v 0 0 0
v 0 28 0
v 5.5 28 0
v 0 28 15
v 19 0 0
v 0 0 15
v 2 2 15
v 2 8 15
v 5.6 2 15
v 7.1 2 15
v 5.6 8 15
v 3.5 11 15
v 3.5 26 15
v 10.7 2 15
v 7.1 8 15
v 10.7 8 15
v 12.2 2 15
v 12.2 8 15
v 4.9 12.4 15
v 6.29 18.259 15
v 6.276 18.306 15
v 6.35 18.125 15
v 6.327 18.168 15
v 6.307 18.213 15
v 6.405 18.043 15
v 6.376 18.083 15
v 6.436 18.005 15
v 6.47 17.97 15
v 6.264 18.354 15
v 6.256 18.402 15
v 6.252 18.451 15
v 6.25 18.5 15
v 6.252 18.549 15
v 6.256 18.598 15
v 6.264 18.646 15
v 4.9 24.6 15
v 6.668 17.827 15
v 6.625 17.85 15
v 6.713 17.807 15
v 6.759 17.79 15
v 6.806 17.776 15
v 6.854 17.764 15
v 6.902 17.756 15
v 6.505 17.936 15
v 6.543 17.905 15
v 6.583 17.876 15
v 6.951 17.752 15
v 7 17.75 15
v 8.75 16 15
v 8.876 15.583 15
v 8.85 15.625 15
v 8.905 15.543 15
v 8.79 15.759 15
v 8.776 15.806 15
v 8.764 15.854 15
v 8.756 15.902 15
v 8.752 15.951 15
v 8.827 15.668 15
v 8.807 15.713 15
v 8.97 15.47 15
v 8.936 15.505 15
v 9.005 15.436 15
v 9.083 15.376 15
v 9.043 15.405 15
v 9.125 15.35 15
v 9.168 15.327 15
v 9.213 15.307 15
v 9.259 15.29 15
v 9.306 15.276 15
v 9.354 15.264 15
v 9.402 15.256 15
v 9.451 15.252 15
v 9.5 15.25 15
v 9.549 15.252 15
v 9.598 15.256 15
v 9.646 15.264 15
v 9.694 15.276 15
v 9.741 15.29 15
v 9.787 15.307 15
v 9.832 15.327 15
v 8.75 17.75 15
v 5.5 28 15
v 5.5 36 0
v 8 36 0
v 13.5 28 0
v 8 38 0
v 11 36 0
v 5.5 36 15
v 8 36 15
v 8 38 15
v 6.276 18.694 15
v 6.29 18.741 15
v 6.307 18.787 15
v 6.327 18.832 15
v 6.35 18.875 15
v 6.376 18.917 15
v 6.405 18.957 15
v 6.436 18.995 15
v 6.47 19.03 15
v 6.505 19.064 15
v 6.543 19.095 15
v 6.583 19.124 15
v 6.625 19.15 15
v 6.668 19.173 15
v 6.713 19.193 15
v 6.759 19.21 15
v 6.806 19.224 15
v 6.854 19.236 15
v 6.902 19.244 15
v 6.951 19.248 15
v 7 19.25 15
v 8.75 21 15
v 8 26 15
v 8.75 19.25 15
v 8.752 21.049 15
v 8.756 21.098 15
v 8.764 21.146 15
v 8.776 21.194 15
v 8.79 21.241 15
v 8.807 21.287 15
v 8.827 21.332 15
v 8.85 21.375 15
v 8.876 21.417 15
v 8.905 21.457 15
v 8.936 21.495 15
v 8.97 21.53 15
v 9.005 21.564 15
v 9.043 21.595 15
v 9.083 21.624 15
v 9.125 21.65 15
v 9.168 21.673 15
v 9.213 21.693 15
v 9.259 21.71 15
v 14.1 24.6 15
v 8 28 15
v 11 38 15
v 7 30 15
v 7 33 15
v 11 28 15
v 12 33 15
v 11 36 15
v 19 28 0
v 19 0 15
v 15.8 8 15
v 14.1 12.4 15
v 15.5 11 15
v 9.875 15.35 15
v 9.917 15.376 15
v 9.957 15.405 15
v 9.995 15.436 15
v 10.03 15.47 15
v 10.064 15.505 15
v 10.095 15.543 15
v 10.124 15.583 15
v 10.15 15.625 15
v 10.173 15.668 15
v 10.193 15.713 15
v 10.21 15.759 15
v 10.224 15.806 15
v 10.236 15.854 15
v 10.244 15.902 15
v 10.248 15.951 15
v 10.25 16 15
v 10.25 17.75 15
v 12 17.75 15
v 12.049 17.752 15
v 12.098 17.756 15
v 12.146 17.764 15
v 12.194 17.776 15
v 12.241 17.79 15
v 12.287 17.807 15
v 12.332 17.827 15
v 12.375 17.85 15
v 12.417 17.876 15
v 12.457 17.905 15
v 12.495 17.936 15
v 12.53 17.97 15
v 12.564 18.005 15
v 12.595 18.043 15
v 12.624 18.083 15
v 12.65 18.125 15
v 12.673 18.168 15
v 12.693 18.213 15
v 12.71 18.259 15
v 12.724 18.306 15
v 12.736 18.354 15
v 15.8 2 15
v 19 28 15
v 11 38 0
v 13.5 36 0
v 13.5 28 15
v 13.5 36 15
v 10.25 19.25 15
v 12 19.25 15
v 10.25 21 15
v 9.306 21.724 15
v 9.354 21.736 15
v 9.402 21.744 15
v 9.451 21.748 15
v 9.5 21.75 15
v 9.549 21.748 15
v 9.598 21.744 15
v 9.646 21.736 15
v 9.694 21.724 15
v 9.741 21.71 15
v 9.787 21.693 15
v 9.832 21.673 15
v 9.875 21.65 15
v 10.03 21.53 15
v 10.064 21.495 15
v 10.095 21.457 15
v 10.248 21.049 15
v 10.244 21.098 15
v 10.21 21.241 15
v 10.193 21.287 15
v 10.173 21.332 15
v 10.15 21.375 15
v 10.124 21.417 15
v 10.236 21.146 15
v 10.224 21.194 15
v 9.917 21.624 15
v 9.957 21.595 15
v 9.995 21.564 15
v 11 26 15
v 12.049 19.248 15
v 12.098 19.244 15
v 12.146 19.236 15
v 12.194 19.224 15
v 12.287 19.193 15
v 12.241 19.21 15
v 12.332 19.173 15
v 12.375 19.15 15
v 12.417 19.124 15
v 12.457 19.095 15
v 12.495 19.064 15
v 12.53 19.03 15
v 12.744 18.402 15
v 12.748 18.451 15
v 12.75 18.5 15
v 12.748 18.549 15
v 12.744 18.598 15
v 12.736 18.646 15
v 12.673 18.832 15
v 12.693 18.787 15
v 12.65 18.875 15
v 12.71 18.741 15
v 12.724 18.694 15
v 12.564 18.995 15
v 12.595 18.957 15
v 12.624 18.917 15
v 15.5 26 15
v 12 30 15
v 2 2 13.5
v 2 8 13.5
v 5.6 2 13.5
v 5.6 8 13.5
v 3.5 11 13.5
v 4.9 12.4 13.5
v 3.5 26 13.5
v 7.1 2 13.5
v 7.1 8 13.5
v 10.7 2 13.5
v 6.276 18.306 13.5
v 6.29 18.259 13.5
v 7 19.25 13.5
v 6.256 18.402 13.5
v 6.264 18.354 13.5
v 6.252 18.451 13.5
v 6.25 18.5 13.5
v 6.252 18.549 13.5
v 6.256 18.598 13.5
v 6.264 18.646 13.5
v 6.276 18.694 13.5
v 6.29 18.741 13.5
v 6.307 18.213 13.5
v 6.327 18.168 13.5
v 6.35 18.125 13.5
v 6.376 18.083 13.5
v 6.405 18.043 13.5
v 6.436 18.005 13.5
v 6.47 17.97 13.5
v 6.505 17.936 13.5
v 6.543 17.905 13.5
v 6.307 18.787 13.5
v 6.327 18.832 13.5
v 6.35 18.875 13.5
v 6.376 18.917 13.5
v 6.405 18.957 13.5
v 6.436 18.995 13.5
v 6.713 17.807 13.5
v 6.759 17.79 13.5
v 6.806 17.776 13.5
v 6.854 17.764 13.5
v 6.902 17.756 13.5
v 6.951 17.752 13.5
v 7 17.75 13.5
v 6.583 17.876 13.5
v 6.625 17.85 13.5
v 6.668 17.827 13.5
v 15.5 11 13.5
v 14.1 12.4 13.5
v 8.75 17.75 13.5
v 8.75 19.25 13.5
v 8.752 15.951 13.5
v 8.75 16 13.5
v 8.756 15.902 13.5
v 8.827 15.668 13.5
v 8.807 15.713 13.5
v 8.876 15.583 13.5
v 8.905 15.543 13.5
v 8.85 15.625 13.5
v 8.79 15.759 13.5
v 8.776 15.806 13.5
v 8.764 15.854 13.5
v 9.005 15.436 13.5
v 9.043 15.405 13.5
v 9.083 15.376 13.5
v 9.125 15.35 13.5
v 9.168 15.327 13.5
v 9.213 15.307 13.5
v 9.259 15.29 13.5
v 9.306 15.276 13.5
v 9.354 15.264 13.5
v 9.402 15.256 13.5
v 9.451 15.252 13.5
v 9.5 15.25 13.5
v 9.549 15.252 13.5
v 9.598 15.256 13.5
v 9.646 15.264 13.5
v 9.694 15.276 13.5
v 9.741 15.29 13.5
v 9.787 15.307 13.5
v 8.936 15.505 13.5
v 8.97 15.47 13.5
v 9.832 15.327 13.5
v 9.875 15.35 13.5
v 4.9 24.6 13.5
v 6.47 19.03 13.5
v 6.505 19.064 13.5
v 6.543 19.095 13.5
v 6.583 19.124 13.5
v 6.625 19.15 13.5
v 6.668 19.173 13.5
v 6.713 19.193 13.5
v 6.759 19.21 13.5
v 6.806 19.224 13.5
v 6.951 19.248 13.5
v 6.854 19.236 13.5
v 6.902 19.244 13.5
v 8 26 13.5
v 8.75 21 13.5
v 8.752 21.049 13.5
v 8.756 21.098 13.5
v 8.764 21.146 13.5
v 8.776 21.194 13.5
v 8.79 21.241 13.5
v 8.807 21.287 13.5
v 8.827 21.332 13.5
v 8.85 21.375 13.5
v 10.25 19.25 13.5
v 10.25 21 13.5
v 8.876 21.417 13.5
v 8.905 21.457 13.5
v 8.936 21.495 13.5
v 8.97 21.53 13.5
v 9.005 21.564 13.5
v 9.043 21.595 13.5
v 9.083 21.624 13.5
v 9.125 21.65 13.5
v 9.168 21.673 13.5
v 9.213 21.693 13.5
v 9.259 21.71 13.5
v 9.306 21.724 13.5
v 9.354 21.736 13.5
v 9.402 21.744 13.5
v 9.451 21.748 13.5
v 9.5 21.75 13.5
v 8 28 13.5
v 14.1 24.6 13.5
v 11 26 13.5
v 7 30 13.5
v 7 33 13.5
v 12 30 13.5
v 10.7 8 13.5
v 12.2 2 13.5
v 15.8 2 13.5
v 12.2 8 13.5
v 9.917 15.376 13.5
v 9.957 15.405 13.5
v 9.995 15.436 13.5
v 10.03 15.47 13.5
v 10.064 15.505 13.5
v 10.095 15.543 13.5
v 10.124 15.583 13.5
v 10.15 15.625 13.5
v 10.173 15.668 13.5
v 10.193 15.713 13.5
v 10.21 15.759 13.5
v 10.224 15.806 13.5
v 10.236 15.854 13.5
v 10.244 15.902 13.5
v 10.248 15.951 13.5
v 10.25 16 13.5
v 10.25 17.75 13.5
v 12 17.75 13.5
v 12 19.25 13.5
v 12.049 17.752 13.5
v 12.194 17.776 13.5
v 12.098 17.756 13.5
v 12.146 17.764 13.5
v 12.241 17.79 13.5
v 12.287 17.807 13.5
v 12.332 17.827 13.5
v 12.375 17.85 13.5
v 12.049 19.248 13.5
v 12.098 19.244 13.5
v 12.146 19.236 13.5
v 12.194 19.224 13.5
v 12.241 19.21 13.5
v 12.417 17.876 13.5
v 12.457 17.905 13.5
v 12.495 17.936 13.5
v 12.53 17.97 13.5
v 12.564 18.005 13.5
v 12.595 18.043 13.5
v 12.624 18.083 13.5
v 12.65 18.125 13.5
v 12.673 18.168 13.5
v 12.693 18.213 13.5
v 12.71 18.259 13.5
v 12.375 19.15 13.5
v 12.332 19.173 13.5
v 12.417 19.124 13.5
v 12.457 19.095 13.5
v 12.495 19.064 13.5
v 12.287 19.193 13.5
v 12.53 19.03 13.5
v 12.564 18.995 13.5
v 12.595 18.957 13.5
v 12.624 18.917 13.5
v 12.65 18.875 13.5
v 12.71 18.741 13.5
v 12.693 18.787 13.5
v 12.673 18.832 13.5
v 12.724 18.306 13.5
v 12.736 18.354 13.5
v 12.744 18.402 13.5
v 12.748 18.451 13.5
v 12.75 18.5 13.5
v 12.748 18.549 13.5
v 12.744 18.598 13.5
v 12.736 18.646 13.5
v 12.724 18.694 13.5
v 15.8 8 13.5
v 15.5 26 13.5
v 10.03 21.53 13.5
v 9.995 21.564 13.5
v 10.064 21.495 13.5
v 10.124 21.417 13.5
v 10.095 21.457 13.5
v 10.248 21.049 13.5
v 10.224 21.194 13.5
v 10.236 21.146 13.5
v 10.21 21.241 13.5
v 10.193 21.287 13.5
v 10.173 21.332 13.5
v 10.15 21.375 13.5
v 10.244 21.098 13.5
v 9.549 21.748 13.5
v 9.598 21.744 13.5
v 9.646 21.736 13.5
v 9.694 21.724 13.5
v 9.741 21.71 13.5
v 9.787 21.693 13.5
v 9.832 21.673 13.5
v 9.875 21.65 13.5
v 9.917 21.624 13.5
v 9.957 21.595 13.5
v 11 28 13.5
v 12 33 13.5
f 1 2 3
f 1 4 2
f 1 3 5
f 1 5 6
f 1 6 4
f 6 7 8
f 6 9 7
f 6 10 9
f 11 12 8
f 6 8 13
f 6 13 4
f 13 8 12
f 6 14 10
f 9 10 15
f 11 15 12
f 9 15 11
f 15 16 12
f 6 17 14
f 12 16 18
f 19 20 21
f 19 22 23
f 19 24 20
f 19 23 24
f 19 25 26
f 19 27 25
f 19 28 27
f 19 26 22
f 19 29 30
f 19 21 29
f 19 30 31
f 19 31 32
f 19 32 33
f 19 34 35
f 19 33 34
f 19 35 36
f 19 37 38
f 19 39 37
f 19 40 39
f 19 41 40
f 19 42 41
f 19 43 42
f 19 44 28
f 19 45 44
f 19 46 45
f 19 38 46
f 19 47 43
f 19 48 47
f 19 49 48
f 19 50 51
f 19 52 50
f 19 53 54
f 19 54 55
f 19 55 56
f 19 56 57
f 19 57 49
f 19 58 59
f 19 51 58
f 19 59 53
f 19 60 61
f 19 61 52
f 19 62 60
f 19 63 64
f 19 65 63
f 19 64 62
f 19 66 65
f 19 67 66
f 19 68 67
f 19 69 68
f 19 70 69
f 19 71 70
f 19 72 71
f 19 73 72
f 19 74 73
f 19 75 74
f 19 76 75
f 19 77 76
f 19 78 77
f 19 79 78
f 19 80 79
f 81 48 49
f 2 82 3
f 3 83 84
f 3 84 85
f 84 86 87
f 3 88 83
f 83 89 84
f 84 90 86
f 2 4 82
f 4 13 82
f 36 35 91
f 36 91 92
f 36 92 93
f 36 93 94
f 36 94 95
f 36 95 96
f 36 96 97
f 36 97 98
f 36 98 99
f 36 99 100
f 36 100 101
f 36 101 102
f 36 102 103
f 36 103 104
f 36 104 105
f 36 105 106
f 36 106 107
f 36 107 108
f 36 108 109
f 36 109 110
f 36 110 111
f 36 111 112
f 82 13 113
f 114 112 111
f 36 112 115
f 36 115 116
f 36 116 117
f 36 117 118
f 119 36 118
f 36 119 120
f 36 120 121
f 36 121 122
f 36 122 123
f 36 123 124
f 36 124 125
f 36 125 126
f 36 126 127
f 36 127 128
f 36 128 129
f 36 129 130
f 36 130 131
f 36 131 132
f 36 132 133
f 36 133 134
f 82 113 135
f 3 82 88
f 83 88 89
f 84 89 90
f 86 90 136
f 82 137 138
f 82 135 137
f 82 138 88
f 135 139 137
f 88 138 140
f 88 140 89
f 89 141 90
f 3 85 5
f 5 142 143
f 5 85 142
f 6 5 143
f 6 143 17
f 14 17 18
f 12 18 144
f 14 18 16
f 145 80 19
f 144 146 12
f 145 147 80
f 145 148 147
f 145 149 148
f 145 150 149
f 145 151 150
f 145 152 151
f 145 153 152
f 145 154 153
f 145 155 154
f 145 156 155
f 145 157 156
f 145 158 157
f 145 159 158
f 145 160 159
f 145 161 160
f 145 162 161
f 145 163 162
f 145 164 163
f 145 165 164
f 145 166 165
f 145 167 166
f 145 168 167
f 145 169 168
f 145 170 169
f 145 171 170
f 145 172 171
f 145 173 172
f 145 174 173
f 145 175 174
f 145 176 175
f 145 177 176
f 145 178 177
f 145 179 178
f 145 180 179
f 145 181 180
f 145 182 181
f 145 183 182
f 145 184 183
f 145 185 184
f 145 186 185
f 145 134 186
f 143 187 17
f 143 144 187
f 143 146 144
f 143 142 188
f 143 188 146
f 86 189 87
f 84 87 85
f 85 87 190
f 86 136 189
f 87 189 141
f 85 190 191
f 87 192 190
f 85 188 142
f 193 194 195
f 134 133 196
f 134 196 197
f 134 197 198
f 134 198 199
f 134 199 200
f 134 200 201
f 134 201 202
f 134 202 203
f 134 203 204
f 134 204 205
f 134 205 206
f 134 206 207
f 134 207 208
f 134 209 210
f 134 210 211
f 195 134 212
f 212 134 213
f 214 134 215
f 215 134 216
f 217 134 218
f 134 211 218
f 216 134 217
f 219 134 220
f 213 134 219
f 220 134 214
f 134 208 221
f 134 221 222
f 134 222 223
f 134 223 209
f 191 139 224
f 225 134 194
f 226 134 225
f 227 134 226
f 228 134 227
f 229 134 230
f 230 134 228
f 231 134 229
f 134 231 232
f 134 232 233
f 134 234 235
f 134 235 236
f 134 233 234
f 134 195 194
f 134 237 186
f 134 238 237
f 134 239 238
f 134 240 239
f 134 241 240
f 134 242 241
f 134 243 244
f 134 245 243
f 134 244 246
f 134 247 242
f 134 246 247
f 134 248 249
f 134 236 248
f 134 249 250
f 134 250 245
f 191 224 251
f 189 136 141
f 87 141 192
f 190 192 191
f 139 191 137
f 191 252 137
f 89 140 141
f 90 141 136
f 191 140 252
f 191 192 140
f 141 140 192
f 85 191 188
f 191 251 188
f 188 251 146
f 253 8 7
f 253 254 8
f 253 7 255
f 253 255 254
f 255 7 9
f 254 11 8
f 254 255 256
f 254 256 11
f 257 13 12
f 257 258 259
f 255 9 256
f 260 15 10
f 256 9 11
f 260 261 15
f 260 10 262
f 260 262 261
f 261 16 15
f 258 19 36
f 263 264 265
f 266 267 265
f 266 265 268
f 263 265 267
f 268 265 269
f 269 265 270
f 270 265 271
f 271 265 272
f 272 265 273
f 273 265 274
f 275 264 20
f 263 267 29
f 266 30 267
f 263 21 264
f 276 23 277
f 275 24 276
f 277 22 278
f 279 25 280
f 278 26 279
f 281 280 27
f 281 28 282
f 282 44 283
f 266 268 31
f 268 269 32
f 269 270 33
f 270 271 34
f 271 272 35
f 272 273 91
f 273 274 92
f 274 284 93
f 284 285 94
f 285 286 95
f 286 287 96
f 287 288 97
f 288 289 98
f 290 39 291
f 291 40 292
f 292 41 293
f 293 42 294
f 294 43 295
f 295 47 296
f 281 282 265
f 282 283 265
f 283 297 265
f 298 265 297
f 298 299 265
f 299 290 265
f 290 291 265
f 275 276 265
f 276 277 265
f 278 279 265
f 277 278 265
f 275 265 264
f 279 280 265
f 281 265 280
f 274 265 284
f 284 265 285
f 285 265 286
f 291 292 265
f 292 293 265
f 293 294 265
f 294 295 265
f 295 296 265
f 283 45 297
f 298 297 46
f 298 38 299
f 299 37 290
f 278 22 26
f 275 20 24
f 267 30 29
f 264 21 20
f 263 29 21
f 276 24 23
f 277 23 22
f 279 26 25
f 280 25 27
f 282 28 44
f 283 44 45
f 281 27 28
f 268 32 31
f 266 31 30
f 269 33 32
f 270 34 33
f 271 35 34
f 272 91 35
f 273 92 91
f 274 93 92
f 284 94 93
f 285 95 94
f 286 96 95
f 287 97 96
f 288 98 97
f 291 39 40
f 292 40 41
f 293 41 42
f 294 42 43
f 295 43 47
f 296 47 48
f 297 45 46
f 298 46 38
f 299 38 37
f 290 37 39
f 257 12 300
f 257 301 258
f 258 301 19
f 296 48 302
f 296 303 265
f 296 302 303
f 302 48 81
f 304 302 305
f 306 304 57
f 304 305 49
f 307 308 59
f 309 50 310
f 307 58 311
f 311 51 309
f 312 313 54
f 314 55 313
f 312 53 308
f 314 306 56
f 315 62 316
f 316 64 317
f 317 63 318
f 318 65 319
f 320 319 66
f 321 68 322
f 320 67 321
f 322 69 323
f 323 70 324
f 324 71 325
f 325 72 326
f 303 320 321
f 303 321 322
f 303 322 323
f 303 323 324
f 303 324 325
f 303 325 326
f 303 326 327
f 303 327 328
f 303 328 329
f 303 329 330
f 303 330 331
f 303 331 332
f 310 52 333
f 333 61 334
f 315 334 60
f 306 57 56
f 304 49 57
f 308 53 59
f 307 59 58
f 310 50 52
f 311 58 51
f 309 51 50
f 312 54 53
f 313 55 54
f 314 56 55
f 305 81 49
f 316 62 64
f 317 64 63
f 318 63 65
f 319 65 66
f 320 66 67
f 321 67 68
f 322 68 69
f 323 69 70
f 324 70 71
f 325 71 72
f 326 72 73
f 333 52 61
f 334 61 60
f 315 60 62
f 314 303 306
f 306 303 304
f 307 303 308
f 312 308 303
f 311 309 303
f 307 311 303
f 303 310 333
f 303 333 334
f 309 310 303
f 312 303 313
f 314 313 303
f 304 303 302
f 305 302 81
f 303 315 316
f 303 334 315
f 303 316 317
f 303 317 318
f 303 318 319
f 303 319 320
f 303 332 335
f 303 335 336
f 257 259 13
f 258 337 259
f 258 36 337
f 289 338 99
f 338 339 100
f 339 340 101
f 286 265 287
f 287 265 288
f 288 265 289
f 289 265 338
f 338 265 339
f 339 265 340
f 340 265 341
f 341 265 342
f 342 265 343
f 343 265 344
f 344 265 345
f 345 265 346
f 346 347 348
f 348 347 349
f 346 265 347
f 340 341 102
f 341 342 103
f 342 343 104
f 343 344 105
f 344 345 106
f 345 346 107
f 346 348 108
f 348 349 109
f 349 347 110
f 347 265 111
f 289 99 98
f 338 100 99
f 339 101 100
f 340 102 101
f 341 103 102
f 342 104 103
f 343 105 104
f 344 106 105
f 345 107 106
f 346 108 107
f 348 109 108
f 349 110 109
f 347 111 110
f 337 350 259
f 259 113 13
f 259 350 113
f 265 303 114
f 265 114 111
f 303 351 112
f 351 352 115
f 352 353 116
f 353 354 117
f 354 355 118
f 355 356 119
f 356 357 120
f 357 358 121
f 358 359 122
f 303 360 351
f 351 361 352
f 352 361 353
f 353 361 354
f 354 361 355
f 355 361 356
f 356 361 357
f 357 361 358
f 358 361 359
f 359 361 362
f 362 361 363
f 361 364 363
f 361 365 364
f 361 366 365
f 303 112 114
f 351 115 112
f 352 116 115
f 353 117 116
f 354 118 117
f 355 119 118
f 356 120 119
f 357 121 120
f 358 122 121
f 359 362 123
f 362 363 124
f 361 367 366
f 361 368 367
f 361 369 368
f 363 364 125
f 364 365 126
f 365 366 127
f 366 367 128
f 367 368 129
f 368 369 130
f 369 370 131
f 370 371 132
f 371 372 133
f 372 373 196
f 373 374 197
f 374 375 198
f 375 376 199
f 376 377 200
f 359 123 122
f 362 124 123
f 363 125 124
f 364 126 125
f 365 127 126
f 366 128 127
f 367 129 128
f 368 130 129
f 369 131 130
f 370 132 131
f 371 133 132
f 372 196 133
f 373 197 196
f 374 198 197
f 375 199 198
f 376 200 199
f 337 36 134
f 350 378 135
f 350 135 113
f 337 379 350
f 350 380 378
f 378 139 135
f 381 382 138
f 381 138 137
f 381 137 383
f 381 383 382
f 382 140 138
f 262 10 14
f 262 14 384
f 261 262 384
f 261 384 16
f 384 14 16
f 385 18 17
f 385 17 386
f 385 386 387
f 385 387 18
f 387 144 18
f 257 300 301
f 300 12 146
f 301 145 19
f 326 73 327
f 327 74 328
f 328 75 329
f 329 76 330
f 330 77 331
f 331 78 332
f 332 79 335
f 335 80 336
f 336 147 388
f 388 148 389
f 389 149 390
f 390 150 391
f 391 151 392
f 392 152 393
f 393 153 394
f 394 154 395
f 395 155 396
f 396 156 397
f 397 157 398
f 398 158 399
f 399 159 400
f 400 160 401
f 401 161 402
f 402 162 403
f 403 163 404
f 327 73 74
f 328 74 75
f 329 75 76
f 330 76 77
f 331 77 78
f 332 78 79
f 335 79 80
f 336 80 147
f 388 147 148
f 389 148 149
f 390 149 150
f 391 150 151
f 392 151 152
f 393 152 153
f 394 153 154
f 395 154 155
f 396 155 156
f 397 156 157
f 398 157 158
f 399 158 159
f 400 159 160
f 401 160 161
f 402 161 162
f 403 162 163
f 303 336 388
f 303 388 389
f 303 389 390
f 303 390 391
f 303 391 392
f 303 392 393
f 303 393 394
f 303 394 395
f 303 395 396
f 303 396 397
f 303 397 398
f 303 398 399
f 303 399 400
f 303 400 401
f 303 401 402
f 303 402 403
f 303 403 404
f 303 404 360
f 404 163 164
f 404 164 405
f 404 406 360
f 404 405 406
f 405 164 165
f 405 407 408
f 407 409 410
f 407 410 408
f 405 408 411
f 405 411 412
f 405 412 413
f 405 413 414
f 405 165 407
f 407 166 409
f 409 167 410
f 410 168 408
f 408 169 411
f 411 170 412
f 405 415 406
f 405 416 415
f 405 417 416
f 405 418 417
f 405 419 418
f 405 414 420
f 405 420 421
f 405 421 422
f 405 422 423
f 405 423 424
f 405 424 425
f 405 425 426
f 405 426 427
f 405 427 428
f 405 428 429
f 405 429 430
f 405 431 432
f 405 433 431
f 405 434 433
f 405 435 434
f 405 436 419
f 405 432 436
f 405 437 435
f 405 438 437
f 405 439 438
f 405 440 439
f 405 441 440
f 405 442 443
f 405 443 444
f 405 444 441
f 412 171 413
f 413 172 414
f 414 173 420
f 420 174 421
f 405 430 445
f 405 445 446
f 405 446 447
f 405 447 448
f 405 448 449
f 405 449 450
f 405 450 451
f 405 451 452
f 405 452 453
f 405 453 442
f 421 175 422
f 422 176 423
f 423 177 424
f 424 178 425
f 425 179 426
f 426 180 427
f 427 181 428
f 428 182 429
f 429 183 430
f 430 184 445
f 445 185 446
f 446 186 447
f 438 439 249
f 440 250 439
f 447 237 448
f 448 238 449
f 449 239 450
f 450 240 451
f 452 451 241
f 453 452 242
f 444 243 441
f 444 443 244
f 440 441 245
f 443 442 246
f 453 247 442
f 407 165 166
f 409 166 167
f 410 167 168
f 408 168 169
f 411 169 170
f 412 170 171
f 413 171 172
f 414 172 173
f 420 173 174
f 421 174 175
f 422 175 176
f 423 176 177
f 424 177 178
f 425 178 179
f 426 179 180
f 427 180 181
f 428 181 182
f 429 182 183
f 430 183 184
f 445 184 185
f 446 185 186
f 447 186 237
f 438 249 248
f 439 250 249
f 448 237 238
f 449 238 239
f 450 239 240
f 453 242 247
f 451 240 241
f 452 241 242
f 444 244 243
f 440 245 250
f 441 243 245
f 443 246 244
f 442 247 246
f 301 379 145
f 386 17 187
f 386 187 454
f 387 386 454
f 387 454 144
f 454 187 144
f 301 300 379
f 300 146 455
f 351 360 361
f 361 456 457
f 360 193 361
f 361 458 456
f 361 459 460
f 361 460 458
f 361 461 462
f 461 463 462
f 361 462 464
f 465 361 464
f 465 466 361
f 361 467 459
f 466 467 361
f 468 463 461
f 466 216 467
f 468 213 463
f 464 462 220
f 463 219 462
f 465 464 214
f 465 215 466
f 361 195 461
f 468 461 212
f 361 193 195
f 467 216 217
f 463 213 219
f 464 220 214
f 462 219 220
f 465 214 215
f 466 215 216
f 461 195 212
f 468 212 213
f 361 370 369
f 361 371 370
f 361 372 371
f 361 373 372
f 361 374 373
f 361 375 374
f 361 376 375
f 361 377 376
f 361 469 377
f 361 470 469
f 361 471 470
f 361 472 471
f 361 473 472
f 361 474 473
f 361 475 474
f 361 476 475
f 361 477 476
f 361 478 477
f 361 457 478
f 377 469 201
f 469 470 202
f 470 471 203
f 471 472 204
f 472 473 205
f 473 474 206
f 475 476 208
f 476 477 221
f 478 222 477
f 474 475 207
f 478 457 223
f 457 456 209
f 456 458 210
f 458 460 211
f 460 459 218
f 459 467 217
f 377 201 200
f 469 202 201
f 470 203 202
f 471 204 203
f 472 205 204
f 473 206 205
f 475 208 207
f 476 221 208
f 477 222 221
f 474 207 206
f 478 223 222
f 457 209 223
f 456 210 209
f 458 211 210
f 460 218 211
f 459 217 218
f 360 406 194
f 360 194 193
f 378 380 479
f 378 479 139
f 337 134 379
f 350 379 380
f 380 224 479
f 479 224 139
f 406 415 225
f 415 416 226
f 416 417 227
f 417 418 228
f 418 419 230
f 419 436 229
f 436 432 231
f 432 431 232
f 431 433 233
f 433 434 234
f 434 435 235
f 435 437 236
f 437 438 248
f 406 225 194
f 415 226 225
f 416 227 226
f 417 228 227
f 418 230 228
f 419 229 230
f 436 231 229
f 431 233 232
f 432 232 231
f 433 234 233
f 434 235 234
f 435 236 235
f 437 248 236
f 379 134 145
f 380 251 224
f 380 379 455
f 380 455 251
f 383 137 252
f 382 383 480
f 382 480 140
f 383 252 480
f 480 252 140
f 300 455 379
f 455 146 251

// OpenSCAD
// Building facade miniature for board games.
// Millimetres. X=width, Y=height, Z=depth.
// Print flat at Z=0; straight base at Y=0; front at Z=15.
// All recesses are blind and 1.5 mm deep. This is a solid piece.
$fn=96;
depth=15;
recess=1.5;
module rect(x,y,w,h) { translate([x,y]) square([w,h]); }
module disc(x,y,r) { translate([x,y]) circle(r=r); }
module line(a,b,w=1.4) {
    hull() { translate(a) circle(d=w); translate(b) circle(d=w); }
}
module frame(x,y,w,h,t=1.4) {
    difference() { rect(x,y,w,h); rect(x+t,y+t,w-2*t,h-2*t); }
}
module gear(x,y,r=6,inner=2.4) {
    translate([x,y]) difference() {
        polygon([for(i=[0:(r<4?15:23)]) let(n=(r<4?16:24),a=(i+1)*360/n,rr=(i%4<2?r:r-min(1.5,r*0.21))) [rr*cos(a),rr*sin(a)]]);
        circle(r=inner);
    }
}
module car(x,y,w=14,h=5) {
    translate([x,y]) union() {
        polygon([[0,0.8],[0,h*0.48],[w*0.2,h*0.48],
                 [w*0.35,h],[w*0.67,h],[w*0.82,h*0.48],
                 [w,h*0.35],[w,0.8]]);
        disc(w*0.23,0.8,1.3); disc(w*0.77,0.8,1.3);
    }
}
module recycling(x,y,r=6) {
    translate([x,y]) for(a=[0,120,240]) rotate(a) {
        line([-3.8,3.2],[1.2,3.2],1.6);
        polygon([[1.2,1.7],[4.2,3.2],[1.2,4.7]]);
    }
}
module cutface() { translate([0,0,depth-recess]) linear_extrude(height=recess+0.5) facade(); }
// All details are recessed into the same solid facade.
difference() {
    linear_extrude(height=depth) outline();
    cutface();
}


module outline() {
    union() {
        rect(0,0,19,28); rect(5.5,26,8,10); rect(8,34,3,4);
    }
}
module facade() {
    frame(3.5,11,12,15); rect(8,26,3,2);
    line([9.5,16],[9.5,21],1.5); line([7,18.5],[12,18.5],1.5);
    for(x=[2,7.1,12.2]) rect(x,2,3.6,6);
    rect(7,30,5,3);
}
